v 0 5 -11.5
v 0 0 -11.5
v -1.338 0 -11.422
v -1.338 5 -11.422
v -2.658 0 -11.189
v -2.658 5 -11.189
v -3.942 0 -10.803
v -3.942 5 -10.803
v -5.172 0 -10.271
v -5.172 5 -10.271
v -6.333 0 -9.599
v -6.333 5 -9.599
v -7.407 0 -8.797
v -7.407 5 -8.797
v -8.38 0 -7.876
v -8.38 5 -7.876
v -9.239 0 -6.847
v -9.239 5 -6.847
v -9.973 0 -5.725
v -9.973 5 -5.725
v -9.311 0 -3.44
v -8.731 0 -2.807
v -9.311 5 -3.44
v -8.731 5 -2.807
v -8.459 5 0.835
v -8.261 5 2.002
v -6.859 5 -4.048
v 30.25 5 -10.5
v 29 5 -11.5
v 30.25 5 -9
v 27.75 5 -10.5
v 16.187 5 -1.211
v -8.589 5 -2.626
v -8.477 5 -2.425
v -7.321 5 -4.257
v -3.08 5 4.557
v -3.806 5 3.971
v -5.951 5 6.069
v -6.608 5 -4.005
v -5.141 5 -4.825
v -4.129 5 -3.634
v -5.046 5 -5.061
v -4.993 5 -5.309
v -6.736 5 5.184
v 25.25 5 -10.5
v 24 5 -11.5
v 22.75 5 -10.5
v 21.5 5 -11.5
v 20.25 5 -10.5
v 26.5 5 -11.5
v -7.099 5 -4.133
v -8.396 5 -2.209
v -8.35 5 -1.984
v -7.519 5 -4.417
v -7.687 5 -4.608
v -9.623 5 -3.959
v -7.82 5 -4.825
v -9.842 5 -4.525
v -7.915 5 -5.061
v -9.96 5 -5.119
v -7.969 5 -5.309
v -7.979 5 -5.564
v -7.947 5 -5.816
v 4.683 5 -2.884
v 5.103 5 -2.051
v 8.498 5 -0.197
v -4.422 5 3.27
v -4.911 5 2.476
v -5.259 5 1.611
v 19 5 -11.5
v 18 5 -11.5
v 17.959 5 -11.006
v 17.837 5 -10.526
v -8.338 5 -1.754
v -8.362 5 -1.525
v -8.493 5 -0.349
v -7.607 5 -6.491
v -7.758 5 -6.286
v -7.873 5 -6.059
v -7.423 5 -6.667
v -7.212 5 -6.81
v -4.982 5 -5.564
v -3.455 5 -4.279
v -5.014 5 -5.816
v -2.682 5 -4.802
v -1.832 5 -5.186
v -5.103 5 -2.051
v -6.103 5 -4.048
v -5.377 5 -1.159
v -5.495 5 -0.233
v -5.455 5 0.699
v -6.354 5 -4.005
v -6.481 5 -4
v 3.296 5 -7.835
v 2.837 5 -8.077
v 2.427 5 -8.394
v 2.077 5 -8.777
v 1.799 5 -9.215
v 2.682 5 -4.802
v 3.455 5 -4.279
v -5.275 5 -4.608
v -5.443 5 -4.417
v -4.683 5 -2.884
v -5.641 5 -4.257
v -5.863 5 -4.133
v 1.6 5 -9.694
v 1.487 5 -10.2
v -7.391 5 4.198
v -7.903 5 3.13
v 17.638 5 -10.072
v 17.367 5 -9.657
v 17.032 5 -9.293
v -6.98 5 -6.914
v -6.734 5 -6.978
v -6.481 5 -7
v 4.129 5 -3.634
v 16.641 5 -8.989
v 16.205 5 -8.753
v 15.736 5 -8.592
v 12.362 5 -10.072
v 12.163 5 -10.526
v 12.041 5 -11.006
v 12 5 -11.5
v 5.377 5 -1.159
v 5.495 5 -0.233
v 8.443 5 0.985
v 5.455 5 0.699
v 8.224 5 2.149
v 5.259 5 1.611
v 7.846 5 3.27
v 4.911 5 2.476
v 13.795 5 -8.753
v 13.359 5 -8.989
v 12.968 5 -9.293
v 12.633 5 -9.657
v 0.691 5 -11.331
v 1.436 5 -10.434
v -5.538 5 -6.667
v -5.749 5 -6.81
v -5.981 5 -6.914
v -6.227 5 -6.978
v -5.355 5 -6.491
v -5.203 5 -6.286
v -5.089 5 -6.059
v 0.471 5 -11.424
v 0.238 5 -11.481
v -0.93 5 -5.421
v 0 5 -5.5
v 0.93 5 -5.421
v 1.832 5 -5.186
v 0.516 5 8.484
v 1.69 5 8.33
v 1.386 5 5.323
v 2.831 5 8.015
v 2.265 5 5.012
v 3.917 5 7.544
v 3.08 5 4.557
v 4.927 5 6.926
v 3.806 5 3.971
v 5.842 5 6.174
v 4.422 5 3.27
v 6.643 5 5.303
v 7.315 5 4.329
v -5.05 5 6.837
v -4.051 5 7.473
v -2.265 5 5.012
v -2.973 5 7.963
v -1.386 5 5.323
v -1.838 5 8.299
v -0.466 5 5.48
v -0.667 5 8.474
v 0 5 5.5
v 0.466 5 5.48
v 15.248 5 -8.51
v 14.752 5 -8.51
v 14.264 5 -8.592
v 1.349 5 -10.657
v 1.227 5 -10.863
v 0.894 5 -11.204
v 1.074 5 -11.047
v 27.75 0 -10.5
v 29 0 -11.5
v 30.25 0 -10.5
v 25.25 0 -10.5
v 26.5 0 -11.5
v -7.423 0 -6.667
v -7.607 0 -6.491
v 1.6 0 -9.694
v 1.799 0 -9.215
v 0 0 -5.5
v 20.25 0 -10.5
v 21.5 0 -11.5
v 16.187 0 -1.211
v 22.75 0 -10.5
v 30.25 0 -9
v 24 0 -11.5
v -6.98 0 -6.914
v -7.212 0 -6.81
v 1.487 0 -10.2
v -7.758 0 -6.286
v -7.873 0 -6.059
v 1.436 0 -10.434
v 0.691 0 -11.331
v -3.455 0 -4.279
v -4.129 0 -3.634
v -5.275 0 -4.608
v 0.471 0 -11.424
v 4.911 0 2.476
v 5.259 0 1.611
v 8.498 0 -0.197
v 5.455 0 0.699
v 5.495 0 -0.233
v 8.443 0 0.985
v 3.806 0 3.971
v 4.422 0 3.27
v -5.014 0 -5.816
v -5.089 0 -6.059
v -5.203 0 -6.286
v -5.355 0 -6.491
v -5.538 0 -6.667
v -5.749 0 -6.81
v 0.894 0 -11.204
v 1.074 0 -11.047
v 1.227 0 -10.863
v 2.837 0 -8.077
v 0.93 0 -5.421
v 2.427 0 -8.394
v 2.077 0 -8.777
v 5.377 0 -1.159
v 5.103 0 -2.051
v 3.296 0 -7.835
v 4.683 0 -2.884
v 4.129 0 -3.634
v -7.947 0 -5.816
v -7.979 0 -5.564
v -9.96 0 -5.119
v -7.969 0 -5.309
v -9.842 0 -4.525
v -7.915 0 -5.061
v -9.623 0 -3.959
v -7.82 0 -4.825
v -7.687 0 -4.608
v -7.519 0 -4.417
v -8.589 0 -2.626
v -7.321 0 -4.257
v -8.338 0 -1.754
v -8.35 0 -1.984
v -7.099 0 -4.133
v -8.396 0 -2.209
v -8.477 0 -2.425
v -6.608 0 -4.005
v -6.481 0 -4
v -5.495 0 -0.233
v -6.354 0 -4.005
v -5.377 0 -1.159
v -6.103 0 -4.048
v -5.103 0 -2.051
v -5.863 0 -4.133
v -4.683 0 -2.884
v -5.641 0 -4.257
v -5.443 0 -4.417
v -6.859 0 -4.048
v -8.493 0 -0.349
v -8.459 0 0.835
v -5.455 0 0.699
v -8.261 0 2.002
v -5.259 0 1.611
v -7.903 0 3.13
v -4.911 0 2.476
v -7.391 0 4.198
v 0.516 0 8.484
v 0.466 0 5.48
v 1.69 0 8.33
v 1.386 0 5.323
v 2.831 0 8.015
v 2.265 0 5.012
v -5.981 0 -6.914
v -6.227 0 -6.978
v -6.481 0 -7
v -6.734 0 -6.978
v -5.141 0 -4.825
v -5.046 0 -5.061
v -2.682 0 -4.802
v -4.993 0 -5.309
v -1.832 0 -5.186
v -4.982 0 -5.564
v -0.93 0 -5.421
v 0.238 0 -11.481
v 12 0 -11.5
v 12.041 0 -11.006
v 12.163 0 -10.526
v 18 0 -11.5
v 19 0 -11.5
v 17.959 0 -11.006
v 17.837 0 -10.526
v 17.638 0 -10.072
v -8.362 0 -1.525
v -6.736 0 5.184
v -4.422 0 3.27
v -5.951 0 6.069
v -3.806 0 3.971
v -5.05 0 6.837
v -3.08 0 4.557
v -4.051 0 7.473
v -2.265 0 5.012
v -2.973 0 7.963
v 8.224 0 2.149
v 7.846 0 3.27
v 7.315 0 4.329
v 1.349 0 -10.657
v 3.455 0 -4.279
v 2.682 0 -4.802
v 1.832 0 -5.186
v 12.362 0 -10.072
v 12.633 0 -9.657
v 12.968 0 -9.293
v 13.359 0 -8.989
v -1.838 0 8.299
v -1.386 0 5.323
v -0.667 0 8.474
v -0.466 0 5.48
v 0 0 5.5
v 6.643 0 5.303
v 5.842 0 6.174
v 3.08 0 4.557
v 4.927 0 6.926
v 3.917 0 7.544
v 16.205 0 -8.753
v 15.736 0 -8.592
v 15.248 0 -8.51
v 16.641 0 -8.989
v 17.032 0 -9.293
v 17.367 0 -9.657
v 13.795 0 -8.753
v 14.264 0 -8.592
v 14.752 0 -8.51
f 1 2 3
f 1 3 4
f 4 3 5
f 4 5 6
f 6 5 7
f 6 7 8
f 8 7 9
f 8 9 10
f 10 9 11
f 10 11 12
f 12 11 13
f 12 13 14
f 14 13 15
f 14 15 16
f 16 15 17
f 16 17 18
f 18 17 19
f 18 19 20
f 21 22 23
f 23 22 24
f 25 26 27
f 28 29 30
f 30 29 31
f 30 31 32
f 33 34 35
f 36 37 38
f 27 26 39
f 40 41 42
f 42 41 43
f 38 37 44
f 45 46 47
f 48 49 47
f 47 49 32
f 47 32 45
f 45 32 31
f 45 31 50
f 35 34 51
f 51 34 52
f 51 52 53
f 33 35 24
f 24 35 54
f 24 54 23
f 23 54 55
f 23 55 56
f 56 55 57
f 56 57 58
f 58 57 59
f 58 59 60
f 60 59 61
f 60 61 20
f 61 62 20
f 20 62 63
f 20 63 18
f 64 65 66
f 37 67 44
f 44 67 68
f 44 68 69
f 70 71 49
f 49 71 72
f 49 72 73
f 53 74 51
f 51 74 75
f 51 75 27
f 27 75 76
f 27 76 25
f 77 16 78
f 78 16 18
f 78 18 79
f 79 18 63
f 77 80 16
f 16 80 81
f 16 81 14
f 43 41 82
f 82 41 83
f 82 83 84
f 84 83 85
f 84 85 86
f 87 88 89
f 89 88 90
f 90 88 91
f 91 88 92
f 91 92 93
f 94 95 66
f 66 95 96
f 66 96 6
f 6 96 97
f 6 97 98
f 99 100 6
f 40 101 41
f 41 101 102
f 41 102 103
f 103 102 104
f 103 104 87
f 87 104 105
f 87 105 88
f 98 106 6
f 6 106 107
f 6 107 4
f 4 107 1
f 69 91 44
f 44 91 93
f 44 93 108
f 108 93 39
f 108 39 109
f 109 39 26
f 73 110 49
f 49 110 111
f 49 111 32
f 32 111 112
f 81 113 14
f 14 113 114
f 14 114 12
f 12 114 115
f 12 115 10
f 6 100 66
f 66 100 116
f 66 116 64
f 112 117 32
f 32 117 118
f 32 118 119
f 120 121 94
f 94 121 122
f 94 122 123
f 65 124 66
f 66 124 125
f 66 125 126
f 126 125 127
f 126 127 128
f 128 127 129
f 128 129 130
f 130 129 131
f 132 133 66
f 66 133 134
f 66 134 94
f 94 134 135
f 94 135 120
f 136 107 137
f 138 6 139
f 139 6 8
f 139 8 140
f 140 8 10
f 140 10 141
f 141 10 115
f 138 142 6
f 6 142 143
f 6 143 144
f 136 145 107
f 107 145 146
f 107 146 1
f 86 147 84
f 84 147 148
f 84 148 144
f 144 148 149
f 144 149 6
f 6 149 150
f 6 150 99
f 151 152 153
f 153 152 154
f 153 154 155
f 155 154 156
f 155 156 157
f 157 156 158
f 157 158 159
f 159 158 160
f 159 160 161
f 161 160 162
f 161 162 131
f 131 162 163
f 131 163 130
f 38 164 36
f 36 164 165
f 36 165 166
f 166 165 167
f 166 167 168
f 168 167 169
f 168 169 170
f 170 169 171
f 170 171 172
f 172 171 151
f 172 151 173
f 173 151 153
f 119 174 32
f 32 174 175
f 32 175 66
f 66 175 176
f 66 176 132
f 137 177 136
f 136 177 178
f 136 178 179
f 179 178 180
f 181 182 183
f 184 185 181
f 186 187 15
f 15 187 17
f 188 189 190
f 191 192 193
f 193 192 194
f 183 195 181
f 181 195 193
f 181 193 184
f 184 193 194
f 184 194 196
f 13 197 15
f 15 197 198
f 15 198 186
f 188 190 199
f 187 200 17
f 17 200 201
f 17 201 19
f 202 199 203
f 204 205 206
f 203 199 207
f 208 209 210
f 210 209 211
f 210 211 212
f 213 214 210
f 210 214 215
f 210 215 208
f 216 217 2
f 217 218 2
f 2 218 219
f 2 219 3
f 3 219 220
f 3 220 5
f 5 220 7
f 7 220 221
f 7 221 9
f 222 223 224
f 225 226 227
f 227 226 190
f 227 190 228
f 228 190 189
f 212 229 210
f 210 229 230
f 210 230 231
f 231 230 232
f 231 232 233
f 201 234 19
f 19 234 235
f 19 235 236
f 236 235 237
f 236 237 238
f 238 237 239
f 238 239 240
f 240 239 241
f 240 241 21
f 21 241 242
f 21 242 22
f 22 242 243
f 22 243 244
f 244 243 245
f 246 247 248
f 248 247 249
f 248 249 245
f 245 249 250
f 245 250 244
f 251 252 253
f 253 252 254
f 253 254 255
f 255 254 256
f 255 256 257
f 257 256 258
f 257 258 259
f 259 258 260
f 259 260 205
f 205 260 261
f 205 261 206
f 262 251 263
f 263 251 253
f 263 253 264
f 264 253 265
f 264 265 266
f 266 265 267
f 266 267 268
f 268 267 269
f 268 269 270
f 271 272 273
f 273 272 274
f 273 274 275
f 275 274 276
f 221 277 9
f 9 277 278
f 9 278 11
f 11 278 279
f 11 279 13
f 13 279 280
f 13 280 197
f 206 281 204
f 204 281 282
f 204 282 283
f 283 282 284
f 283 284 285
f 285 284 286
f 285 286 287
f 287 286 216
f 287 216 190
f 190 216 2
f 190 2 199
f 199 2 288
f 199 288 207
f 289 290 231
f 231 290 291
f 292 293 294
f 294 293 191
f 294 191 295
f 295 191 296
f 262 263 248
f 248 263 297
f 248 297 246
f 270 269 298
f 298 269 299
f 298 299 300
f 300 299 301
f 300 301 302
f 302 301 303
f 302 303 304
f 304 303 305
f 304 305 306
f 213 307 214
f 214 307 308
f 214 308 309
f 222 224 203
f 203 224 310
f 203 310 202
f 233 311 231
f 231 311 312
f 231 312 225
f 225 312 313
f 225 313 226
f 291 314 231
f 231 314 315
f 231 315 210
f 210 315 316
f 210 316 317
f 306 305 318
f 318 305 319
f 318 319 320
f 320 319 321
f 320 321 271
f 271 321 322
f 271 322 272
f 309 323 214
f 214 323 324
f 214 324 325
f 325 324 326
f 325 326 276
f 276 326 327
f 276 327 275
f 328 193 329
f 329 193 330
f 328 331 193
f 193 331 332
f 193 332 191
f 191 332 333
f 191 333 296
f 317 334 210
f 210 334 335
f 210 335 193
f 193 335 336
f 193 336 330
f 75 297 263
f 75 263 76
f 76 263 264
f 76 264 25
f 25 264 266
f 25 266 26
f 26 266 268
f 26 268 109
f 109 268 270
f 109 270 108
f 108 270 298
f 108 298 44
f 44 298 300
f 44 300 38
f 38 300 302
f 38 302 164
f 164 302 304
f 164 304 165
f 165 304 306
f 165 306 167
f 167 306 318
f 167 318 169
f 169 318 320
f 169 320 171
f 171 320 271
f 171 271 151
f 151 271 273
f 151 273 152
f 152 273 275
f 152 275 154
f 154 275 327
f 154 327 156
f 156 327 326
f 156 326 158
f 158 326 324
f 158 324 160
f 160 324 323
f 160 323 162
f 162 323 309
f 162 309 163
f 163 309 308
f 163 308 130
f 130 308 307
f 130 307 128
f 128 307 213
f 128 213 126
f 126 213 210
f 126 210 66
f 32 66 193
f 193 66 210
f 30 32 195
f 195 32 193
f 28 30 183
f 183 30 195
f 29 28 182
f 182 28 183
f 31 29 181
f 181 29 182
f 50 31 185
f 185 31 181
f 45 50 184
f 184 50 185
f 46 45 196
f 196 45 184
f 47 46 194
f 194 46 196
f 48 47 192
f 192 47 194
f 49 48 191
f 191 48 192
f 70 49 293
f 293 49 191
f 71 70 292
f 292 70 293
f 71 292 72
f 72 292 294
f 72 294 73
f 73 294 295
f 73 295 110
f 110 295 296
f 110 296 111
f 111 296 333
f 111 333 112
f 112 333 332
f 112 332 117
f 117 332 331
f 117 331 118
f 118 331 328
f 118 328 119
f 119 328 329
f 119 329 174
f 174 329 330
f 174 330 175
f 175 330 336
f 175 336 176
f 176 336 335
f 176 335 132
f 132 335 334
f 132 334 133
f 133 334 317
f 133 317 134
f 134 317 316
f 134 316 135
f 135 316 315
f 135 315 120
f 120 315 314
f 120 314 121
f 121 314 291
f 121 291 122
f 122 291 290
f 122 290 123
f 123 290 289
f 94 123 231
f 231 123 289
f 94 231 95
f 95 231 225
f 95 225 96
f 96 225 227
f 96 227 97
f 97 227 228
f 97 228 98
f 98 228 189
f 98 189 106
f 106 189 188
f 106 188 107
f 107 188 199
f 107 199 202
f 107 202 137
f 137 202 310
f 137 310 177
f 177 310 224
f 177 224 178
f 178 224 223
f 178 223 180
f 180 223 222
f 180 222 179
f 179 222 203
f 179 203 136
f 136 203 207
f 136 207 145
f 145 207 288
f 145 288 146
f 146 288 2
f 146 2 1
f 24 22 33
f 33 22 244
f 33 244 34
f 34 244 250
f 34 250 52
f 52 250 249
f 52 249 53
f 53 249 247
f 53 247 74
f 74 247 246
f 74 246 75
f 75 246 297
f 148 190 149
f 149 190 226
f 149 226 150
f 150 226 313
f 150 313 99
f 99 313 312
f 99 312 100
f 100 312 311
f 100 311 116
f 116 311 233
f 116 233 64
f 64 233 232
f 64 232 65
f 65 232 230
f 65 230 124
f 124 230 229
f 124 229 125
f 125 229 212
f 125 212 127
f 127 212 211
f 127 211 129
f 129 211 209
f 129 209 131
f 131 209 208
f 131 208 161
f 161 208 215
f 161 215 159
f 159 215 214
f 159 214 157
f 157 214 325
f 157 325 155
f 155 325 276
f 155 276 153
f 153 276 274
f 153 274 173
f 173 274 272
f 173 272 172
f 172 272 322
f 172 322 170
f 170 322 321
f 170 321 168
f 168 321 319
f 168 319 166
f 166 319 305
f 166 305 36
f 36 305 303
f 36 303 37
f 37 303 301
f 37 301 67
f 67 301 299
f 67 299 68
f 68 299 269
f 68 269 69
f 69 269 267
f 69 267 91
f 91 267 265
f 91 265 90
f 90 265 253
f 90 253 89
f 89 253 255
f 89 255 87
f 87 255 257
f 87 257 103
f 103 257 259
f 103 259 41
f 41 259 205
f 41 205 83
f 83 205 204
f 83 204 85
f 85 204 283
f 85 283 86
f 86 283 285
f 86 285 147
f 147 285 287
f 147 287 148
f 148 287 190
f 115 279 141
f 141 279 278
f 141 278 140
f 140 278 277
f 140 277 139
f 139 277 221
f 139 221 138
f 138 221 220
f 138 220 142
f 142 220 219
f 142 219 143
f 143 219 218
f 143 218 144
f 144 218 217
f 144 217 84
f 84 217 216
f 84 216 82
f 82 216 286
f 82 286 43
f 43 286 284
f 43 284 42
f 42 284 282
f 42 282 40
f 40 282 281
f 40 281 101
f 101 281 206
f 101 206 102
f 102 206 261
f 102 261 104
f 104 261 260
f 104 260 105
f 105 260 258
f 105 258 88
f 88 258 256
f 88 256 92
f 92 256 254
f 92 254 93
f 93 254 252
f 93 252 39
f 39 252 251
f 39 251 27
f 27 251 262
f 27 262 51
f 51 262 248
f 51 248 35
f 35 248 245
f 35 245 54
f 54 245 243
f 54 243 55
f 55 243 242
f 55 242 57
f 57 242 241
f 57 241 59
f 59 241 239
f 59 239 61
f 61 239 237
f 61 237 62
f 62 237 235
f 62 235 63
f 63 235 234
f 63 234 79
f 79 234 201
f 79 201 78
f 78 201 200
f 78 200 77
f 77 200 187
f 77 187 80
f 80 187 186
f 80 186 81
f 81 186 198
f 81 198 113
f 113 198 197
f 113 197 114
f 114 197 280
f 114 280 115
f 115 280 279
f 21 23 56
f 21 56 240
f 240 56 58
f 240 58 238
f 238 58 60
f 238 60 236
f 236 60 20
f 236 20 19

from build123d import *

# Parameters (mm, degrees)
SKETCH_1_R          = 5.5
SKETCH_1_R_2        = 1.5
EXTRUDE_2_DEPTH     = 5
CUT_EXTRUDE_1_DEPTH = 33.746182984


with BuildPart() as part:
    # Эскиз1 → Бобышка-Вытянуть2 (new body)
    with BuildSketch(Plane(origin=(0, 0, 0), x_dir=(1, 0, 0), z_dir=(0, 1, 0))):
        with BuildLine():
            ThreePointArc((-8.362025498, 1.525296552), (-0.667373394, -8.473760249), (8.497706046, 0.197463815))
            Line((8.497706046, 0.197463815), (16.18697839, 1.21124957))
            Line((16.18697839, 1.21124957), (30.25, 9))
            Line((30.25, 9), (30.25, 10.5))
            Line((30.25, 10.5), (29, 11.5))
            Line((29, 11.5), (27.75, 10.5))
            Line((27.75, 10.5), (26.5, 11.5))
            Line((26.5, 11.5), (25.25, 10.5))
            Line((25.25, 10.5), (24, 11.5))
            Line((24, 11.5), (22.75, 10.5))
            Line((22.75, 10.5), (21.5, 11.5))
            Line((21.5, 11.5), (20.25, 10.5))
            Line((20.25, 10.5), (19, 11.5))
            Line((19, 11.5), (18, 11.5))
            ThreePointArc((18, 11.5), (15, 8.5), (12, 11.5))
            Line((12, 11.5), (3.296389157, 7.834782609))
            ThreePointArc((3.296389157, 7.834782609), (2.077275401, 8.776959062), (1.486606875, 10.2))
            ThreePointArc((1.486606875, 10.2), (0.987420883, 11.129158979), (0, 11.5))
            ThreePointArc((0, 11.5), (-6.242051456, 9.658508871), (-10.485027716, 4.723790195))
            Line((-10.485027716, 4.723790195), (-8.731080367, 2.807108505))
            ThreePointArc((-8.731080367, 2.807108505), (-8.396232651, 2.209482225), (-8.362025498, 1.525296552))
        make_face()
        with Locations(Location((0, 0, 0), (0, 0, 270))):
            Circle(SKETCH_1_R, mode=Mode.SUBTRACT)
        with Locations(Location((-6.480740698, 5.5, 0), (0, 0, 270))):
            Circle(SKETCH_1_R_2, mode=Mode.SUBTRACT)
    extrude(amount=EXTRUDE_2_DEPTH)

    # Эскиз2 → Вырез-Вытянуть1 (cut, through all)
    with BuildSketch(Plane(origin=(0, 5, 0), x_dir=(1, 0, 0), z_dir=(0, 1, 0))):
        with BuildLine():
            ThreePointArc((-9.310541114, 3.440332646), (-9.842132841, 4.524785735), (-9.973477908, 5.72535924))
            ThreePointArc((-9.973477908, 5.72535924), (-10.241503709, 5.230831844), (-10.485027716, 4.723790195))
            Line((-10.485027716, 4.723790195), (-9.310541114, 3.440332646))
        make_face()
    extrude(amount=-CUT_EXTRUDE_1_DEPTH, mode=Mode.SUBTRACT)


solid = part.part
